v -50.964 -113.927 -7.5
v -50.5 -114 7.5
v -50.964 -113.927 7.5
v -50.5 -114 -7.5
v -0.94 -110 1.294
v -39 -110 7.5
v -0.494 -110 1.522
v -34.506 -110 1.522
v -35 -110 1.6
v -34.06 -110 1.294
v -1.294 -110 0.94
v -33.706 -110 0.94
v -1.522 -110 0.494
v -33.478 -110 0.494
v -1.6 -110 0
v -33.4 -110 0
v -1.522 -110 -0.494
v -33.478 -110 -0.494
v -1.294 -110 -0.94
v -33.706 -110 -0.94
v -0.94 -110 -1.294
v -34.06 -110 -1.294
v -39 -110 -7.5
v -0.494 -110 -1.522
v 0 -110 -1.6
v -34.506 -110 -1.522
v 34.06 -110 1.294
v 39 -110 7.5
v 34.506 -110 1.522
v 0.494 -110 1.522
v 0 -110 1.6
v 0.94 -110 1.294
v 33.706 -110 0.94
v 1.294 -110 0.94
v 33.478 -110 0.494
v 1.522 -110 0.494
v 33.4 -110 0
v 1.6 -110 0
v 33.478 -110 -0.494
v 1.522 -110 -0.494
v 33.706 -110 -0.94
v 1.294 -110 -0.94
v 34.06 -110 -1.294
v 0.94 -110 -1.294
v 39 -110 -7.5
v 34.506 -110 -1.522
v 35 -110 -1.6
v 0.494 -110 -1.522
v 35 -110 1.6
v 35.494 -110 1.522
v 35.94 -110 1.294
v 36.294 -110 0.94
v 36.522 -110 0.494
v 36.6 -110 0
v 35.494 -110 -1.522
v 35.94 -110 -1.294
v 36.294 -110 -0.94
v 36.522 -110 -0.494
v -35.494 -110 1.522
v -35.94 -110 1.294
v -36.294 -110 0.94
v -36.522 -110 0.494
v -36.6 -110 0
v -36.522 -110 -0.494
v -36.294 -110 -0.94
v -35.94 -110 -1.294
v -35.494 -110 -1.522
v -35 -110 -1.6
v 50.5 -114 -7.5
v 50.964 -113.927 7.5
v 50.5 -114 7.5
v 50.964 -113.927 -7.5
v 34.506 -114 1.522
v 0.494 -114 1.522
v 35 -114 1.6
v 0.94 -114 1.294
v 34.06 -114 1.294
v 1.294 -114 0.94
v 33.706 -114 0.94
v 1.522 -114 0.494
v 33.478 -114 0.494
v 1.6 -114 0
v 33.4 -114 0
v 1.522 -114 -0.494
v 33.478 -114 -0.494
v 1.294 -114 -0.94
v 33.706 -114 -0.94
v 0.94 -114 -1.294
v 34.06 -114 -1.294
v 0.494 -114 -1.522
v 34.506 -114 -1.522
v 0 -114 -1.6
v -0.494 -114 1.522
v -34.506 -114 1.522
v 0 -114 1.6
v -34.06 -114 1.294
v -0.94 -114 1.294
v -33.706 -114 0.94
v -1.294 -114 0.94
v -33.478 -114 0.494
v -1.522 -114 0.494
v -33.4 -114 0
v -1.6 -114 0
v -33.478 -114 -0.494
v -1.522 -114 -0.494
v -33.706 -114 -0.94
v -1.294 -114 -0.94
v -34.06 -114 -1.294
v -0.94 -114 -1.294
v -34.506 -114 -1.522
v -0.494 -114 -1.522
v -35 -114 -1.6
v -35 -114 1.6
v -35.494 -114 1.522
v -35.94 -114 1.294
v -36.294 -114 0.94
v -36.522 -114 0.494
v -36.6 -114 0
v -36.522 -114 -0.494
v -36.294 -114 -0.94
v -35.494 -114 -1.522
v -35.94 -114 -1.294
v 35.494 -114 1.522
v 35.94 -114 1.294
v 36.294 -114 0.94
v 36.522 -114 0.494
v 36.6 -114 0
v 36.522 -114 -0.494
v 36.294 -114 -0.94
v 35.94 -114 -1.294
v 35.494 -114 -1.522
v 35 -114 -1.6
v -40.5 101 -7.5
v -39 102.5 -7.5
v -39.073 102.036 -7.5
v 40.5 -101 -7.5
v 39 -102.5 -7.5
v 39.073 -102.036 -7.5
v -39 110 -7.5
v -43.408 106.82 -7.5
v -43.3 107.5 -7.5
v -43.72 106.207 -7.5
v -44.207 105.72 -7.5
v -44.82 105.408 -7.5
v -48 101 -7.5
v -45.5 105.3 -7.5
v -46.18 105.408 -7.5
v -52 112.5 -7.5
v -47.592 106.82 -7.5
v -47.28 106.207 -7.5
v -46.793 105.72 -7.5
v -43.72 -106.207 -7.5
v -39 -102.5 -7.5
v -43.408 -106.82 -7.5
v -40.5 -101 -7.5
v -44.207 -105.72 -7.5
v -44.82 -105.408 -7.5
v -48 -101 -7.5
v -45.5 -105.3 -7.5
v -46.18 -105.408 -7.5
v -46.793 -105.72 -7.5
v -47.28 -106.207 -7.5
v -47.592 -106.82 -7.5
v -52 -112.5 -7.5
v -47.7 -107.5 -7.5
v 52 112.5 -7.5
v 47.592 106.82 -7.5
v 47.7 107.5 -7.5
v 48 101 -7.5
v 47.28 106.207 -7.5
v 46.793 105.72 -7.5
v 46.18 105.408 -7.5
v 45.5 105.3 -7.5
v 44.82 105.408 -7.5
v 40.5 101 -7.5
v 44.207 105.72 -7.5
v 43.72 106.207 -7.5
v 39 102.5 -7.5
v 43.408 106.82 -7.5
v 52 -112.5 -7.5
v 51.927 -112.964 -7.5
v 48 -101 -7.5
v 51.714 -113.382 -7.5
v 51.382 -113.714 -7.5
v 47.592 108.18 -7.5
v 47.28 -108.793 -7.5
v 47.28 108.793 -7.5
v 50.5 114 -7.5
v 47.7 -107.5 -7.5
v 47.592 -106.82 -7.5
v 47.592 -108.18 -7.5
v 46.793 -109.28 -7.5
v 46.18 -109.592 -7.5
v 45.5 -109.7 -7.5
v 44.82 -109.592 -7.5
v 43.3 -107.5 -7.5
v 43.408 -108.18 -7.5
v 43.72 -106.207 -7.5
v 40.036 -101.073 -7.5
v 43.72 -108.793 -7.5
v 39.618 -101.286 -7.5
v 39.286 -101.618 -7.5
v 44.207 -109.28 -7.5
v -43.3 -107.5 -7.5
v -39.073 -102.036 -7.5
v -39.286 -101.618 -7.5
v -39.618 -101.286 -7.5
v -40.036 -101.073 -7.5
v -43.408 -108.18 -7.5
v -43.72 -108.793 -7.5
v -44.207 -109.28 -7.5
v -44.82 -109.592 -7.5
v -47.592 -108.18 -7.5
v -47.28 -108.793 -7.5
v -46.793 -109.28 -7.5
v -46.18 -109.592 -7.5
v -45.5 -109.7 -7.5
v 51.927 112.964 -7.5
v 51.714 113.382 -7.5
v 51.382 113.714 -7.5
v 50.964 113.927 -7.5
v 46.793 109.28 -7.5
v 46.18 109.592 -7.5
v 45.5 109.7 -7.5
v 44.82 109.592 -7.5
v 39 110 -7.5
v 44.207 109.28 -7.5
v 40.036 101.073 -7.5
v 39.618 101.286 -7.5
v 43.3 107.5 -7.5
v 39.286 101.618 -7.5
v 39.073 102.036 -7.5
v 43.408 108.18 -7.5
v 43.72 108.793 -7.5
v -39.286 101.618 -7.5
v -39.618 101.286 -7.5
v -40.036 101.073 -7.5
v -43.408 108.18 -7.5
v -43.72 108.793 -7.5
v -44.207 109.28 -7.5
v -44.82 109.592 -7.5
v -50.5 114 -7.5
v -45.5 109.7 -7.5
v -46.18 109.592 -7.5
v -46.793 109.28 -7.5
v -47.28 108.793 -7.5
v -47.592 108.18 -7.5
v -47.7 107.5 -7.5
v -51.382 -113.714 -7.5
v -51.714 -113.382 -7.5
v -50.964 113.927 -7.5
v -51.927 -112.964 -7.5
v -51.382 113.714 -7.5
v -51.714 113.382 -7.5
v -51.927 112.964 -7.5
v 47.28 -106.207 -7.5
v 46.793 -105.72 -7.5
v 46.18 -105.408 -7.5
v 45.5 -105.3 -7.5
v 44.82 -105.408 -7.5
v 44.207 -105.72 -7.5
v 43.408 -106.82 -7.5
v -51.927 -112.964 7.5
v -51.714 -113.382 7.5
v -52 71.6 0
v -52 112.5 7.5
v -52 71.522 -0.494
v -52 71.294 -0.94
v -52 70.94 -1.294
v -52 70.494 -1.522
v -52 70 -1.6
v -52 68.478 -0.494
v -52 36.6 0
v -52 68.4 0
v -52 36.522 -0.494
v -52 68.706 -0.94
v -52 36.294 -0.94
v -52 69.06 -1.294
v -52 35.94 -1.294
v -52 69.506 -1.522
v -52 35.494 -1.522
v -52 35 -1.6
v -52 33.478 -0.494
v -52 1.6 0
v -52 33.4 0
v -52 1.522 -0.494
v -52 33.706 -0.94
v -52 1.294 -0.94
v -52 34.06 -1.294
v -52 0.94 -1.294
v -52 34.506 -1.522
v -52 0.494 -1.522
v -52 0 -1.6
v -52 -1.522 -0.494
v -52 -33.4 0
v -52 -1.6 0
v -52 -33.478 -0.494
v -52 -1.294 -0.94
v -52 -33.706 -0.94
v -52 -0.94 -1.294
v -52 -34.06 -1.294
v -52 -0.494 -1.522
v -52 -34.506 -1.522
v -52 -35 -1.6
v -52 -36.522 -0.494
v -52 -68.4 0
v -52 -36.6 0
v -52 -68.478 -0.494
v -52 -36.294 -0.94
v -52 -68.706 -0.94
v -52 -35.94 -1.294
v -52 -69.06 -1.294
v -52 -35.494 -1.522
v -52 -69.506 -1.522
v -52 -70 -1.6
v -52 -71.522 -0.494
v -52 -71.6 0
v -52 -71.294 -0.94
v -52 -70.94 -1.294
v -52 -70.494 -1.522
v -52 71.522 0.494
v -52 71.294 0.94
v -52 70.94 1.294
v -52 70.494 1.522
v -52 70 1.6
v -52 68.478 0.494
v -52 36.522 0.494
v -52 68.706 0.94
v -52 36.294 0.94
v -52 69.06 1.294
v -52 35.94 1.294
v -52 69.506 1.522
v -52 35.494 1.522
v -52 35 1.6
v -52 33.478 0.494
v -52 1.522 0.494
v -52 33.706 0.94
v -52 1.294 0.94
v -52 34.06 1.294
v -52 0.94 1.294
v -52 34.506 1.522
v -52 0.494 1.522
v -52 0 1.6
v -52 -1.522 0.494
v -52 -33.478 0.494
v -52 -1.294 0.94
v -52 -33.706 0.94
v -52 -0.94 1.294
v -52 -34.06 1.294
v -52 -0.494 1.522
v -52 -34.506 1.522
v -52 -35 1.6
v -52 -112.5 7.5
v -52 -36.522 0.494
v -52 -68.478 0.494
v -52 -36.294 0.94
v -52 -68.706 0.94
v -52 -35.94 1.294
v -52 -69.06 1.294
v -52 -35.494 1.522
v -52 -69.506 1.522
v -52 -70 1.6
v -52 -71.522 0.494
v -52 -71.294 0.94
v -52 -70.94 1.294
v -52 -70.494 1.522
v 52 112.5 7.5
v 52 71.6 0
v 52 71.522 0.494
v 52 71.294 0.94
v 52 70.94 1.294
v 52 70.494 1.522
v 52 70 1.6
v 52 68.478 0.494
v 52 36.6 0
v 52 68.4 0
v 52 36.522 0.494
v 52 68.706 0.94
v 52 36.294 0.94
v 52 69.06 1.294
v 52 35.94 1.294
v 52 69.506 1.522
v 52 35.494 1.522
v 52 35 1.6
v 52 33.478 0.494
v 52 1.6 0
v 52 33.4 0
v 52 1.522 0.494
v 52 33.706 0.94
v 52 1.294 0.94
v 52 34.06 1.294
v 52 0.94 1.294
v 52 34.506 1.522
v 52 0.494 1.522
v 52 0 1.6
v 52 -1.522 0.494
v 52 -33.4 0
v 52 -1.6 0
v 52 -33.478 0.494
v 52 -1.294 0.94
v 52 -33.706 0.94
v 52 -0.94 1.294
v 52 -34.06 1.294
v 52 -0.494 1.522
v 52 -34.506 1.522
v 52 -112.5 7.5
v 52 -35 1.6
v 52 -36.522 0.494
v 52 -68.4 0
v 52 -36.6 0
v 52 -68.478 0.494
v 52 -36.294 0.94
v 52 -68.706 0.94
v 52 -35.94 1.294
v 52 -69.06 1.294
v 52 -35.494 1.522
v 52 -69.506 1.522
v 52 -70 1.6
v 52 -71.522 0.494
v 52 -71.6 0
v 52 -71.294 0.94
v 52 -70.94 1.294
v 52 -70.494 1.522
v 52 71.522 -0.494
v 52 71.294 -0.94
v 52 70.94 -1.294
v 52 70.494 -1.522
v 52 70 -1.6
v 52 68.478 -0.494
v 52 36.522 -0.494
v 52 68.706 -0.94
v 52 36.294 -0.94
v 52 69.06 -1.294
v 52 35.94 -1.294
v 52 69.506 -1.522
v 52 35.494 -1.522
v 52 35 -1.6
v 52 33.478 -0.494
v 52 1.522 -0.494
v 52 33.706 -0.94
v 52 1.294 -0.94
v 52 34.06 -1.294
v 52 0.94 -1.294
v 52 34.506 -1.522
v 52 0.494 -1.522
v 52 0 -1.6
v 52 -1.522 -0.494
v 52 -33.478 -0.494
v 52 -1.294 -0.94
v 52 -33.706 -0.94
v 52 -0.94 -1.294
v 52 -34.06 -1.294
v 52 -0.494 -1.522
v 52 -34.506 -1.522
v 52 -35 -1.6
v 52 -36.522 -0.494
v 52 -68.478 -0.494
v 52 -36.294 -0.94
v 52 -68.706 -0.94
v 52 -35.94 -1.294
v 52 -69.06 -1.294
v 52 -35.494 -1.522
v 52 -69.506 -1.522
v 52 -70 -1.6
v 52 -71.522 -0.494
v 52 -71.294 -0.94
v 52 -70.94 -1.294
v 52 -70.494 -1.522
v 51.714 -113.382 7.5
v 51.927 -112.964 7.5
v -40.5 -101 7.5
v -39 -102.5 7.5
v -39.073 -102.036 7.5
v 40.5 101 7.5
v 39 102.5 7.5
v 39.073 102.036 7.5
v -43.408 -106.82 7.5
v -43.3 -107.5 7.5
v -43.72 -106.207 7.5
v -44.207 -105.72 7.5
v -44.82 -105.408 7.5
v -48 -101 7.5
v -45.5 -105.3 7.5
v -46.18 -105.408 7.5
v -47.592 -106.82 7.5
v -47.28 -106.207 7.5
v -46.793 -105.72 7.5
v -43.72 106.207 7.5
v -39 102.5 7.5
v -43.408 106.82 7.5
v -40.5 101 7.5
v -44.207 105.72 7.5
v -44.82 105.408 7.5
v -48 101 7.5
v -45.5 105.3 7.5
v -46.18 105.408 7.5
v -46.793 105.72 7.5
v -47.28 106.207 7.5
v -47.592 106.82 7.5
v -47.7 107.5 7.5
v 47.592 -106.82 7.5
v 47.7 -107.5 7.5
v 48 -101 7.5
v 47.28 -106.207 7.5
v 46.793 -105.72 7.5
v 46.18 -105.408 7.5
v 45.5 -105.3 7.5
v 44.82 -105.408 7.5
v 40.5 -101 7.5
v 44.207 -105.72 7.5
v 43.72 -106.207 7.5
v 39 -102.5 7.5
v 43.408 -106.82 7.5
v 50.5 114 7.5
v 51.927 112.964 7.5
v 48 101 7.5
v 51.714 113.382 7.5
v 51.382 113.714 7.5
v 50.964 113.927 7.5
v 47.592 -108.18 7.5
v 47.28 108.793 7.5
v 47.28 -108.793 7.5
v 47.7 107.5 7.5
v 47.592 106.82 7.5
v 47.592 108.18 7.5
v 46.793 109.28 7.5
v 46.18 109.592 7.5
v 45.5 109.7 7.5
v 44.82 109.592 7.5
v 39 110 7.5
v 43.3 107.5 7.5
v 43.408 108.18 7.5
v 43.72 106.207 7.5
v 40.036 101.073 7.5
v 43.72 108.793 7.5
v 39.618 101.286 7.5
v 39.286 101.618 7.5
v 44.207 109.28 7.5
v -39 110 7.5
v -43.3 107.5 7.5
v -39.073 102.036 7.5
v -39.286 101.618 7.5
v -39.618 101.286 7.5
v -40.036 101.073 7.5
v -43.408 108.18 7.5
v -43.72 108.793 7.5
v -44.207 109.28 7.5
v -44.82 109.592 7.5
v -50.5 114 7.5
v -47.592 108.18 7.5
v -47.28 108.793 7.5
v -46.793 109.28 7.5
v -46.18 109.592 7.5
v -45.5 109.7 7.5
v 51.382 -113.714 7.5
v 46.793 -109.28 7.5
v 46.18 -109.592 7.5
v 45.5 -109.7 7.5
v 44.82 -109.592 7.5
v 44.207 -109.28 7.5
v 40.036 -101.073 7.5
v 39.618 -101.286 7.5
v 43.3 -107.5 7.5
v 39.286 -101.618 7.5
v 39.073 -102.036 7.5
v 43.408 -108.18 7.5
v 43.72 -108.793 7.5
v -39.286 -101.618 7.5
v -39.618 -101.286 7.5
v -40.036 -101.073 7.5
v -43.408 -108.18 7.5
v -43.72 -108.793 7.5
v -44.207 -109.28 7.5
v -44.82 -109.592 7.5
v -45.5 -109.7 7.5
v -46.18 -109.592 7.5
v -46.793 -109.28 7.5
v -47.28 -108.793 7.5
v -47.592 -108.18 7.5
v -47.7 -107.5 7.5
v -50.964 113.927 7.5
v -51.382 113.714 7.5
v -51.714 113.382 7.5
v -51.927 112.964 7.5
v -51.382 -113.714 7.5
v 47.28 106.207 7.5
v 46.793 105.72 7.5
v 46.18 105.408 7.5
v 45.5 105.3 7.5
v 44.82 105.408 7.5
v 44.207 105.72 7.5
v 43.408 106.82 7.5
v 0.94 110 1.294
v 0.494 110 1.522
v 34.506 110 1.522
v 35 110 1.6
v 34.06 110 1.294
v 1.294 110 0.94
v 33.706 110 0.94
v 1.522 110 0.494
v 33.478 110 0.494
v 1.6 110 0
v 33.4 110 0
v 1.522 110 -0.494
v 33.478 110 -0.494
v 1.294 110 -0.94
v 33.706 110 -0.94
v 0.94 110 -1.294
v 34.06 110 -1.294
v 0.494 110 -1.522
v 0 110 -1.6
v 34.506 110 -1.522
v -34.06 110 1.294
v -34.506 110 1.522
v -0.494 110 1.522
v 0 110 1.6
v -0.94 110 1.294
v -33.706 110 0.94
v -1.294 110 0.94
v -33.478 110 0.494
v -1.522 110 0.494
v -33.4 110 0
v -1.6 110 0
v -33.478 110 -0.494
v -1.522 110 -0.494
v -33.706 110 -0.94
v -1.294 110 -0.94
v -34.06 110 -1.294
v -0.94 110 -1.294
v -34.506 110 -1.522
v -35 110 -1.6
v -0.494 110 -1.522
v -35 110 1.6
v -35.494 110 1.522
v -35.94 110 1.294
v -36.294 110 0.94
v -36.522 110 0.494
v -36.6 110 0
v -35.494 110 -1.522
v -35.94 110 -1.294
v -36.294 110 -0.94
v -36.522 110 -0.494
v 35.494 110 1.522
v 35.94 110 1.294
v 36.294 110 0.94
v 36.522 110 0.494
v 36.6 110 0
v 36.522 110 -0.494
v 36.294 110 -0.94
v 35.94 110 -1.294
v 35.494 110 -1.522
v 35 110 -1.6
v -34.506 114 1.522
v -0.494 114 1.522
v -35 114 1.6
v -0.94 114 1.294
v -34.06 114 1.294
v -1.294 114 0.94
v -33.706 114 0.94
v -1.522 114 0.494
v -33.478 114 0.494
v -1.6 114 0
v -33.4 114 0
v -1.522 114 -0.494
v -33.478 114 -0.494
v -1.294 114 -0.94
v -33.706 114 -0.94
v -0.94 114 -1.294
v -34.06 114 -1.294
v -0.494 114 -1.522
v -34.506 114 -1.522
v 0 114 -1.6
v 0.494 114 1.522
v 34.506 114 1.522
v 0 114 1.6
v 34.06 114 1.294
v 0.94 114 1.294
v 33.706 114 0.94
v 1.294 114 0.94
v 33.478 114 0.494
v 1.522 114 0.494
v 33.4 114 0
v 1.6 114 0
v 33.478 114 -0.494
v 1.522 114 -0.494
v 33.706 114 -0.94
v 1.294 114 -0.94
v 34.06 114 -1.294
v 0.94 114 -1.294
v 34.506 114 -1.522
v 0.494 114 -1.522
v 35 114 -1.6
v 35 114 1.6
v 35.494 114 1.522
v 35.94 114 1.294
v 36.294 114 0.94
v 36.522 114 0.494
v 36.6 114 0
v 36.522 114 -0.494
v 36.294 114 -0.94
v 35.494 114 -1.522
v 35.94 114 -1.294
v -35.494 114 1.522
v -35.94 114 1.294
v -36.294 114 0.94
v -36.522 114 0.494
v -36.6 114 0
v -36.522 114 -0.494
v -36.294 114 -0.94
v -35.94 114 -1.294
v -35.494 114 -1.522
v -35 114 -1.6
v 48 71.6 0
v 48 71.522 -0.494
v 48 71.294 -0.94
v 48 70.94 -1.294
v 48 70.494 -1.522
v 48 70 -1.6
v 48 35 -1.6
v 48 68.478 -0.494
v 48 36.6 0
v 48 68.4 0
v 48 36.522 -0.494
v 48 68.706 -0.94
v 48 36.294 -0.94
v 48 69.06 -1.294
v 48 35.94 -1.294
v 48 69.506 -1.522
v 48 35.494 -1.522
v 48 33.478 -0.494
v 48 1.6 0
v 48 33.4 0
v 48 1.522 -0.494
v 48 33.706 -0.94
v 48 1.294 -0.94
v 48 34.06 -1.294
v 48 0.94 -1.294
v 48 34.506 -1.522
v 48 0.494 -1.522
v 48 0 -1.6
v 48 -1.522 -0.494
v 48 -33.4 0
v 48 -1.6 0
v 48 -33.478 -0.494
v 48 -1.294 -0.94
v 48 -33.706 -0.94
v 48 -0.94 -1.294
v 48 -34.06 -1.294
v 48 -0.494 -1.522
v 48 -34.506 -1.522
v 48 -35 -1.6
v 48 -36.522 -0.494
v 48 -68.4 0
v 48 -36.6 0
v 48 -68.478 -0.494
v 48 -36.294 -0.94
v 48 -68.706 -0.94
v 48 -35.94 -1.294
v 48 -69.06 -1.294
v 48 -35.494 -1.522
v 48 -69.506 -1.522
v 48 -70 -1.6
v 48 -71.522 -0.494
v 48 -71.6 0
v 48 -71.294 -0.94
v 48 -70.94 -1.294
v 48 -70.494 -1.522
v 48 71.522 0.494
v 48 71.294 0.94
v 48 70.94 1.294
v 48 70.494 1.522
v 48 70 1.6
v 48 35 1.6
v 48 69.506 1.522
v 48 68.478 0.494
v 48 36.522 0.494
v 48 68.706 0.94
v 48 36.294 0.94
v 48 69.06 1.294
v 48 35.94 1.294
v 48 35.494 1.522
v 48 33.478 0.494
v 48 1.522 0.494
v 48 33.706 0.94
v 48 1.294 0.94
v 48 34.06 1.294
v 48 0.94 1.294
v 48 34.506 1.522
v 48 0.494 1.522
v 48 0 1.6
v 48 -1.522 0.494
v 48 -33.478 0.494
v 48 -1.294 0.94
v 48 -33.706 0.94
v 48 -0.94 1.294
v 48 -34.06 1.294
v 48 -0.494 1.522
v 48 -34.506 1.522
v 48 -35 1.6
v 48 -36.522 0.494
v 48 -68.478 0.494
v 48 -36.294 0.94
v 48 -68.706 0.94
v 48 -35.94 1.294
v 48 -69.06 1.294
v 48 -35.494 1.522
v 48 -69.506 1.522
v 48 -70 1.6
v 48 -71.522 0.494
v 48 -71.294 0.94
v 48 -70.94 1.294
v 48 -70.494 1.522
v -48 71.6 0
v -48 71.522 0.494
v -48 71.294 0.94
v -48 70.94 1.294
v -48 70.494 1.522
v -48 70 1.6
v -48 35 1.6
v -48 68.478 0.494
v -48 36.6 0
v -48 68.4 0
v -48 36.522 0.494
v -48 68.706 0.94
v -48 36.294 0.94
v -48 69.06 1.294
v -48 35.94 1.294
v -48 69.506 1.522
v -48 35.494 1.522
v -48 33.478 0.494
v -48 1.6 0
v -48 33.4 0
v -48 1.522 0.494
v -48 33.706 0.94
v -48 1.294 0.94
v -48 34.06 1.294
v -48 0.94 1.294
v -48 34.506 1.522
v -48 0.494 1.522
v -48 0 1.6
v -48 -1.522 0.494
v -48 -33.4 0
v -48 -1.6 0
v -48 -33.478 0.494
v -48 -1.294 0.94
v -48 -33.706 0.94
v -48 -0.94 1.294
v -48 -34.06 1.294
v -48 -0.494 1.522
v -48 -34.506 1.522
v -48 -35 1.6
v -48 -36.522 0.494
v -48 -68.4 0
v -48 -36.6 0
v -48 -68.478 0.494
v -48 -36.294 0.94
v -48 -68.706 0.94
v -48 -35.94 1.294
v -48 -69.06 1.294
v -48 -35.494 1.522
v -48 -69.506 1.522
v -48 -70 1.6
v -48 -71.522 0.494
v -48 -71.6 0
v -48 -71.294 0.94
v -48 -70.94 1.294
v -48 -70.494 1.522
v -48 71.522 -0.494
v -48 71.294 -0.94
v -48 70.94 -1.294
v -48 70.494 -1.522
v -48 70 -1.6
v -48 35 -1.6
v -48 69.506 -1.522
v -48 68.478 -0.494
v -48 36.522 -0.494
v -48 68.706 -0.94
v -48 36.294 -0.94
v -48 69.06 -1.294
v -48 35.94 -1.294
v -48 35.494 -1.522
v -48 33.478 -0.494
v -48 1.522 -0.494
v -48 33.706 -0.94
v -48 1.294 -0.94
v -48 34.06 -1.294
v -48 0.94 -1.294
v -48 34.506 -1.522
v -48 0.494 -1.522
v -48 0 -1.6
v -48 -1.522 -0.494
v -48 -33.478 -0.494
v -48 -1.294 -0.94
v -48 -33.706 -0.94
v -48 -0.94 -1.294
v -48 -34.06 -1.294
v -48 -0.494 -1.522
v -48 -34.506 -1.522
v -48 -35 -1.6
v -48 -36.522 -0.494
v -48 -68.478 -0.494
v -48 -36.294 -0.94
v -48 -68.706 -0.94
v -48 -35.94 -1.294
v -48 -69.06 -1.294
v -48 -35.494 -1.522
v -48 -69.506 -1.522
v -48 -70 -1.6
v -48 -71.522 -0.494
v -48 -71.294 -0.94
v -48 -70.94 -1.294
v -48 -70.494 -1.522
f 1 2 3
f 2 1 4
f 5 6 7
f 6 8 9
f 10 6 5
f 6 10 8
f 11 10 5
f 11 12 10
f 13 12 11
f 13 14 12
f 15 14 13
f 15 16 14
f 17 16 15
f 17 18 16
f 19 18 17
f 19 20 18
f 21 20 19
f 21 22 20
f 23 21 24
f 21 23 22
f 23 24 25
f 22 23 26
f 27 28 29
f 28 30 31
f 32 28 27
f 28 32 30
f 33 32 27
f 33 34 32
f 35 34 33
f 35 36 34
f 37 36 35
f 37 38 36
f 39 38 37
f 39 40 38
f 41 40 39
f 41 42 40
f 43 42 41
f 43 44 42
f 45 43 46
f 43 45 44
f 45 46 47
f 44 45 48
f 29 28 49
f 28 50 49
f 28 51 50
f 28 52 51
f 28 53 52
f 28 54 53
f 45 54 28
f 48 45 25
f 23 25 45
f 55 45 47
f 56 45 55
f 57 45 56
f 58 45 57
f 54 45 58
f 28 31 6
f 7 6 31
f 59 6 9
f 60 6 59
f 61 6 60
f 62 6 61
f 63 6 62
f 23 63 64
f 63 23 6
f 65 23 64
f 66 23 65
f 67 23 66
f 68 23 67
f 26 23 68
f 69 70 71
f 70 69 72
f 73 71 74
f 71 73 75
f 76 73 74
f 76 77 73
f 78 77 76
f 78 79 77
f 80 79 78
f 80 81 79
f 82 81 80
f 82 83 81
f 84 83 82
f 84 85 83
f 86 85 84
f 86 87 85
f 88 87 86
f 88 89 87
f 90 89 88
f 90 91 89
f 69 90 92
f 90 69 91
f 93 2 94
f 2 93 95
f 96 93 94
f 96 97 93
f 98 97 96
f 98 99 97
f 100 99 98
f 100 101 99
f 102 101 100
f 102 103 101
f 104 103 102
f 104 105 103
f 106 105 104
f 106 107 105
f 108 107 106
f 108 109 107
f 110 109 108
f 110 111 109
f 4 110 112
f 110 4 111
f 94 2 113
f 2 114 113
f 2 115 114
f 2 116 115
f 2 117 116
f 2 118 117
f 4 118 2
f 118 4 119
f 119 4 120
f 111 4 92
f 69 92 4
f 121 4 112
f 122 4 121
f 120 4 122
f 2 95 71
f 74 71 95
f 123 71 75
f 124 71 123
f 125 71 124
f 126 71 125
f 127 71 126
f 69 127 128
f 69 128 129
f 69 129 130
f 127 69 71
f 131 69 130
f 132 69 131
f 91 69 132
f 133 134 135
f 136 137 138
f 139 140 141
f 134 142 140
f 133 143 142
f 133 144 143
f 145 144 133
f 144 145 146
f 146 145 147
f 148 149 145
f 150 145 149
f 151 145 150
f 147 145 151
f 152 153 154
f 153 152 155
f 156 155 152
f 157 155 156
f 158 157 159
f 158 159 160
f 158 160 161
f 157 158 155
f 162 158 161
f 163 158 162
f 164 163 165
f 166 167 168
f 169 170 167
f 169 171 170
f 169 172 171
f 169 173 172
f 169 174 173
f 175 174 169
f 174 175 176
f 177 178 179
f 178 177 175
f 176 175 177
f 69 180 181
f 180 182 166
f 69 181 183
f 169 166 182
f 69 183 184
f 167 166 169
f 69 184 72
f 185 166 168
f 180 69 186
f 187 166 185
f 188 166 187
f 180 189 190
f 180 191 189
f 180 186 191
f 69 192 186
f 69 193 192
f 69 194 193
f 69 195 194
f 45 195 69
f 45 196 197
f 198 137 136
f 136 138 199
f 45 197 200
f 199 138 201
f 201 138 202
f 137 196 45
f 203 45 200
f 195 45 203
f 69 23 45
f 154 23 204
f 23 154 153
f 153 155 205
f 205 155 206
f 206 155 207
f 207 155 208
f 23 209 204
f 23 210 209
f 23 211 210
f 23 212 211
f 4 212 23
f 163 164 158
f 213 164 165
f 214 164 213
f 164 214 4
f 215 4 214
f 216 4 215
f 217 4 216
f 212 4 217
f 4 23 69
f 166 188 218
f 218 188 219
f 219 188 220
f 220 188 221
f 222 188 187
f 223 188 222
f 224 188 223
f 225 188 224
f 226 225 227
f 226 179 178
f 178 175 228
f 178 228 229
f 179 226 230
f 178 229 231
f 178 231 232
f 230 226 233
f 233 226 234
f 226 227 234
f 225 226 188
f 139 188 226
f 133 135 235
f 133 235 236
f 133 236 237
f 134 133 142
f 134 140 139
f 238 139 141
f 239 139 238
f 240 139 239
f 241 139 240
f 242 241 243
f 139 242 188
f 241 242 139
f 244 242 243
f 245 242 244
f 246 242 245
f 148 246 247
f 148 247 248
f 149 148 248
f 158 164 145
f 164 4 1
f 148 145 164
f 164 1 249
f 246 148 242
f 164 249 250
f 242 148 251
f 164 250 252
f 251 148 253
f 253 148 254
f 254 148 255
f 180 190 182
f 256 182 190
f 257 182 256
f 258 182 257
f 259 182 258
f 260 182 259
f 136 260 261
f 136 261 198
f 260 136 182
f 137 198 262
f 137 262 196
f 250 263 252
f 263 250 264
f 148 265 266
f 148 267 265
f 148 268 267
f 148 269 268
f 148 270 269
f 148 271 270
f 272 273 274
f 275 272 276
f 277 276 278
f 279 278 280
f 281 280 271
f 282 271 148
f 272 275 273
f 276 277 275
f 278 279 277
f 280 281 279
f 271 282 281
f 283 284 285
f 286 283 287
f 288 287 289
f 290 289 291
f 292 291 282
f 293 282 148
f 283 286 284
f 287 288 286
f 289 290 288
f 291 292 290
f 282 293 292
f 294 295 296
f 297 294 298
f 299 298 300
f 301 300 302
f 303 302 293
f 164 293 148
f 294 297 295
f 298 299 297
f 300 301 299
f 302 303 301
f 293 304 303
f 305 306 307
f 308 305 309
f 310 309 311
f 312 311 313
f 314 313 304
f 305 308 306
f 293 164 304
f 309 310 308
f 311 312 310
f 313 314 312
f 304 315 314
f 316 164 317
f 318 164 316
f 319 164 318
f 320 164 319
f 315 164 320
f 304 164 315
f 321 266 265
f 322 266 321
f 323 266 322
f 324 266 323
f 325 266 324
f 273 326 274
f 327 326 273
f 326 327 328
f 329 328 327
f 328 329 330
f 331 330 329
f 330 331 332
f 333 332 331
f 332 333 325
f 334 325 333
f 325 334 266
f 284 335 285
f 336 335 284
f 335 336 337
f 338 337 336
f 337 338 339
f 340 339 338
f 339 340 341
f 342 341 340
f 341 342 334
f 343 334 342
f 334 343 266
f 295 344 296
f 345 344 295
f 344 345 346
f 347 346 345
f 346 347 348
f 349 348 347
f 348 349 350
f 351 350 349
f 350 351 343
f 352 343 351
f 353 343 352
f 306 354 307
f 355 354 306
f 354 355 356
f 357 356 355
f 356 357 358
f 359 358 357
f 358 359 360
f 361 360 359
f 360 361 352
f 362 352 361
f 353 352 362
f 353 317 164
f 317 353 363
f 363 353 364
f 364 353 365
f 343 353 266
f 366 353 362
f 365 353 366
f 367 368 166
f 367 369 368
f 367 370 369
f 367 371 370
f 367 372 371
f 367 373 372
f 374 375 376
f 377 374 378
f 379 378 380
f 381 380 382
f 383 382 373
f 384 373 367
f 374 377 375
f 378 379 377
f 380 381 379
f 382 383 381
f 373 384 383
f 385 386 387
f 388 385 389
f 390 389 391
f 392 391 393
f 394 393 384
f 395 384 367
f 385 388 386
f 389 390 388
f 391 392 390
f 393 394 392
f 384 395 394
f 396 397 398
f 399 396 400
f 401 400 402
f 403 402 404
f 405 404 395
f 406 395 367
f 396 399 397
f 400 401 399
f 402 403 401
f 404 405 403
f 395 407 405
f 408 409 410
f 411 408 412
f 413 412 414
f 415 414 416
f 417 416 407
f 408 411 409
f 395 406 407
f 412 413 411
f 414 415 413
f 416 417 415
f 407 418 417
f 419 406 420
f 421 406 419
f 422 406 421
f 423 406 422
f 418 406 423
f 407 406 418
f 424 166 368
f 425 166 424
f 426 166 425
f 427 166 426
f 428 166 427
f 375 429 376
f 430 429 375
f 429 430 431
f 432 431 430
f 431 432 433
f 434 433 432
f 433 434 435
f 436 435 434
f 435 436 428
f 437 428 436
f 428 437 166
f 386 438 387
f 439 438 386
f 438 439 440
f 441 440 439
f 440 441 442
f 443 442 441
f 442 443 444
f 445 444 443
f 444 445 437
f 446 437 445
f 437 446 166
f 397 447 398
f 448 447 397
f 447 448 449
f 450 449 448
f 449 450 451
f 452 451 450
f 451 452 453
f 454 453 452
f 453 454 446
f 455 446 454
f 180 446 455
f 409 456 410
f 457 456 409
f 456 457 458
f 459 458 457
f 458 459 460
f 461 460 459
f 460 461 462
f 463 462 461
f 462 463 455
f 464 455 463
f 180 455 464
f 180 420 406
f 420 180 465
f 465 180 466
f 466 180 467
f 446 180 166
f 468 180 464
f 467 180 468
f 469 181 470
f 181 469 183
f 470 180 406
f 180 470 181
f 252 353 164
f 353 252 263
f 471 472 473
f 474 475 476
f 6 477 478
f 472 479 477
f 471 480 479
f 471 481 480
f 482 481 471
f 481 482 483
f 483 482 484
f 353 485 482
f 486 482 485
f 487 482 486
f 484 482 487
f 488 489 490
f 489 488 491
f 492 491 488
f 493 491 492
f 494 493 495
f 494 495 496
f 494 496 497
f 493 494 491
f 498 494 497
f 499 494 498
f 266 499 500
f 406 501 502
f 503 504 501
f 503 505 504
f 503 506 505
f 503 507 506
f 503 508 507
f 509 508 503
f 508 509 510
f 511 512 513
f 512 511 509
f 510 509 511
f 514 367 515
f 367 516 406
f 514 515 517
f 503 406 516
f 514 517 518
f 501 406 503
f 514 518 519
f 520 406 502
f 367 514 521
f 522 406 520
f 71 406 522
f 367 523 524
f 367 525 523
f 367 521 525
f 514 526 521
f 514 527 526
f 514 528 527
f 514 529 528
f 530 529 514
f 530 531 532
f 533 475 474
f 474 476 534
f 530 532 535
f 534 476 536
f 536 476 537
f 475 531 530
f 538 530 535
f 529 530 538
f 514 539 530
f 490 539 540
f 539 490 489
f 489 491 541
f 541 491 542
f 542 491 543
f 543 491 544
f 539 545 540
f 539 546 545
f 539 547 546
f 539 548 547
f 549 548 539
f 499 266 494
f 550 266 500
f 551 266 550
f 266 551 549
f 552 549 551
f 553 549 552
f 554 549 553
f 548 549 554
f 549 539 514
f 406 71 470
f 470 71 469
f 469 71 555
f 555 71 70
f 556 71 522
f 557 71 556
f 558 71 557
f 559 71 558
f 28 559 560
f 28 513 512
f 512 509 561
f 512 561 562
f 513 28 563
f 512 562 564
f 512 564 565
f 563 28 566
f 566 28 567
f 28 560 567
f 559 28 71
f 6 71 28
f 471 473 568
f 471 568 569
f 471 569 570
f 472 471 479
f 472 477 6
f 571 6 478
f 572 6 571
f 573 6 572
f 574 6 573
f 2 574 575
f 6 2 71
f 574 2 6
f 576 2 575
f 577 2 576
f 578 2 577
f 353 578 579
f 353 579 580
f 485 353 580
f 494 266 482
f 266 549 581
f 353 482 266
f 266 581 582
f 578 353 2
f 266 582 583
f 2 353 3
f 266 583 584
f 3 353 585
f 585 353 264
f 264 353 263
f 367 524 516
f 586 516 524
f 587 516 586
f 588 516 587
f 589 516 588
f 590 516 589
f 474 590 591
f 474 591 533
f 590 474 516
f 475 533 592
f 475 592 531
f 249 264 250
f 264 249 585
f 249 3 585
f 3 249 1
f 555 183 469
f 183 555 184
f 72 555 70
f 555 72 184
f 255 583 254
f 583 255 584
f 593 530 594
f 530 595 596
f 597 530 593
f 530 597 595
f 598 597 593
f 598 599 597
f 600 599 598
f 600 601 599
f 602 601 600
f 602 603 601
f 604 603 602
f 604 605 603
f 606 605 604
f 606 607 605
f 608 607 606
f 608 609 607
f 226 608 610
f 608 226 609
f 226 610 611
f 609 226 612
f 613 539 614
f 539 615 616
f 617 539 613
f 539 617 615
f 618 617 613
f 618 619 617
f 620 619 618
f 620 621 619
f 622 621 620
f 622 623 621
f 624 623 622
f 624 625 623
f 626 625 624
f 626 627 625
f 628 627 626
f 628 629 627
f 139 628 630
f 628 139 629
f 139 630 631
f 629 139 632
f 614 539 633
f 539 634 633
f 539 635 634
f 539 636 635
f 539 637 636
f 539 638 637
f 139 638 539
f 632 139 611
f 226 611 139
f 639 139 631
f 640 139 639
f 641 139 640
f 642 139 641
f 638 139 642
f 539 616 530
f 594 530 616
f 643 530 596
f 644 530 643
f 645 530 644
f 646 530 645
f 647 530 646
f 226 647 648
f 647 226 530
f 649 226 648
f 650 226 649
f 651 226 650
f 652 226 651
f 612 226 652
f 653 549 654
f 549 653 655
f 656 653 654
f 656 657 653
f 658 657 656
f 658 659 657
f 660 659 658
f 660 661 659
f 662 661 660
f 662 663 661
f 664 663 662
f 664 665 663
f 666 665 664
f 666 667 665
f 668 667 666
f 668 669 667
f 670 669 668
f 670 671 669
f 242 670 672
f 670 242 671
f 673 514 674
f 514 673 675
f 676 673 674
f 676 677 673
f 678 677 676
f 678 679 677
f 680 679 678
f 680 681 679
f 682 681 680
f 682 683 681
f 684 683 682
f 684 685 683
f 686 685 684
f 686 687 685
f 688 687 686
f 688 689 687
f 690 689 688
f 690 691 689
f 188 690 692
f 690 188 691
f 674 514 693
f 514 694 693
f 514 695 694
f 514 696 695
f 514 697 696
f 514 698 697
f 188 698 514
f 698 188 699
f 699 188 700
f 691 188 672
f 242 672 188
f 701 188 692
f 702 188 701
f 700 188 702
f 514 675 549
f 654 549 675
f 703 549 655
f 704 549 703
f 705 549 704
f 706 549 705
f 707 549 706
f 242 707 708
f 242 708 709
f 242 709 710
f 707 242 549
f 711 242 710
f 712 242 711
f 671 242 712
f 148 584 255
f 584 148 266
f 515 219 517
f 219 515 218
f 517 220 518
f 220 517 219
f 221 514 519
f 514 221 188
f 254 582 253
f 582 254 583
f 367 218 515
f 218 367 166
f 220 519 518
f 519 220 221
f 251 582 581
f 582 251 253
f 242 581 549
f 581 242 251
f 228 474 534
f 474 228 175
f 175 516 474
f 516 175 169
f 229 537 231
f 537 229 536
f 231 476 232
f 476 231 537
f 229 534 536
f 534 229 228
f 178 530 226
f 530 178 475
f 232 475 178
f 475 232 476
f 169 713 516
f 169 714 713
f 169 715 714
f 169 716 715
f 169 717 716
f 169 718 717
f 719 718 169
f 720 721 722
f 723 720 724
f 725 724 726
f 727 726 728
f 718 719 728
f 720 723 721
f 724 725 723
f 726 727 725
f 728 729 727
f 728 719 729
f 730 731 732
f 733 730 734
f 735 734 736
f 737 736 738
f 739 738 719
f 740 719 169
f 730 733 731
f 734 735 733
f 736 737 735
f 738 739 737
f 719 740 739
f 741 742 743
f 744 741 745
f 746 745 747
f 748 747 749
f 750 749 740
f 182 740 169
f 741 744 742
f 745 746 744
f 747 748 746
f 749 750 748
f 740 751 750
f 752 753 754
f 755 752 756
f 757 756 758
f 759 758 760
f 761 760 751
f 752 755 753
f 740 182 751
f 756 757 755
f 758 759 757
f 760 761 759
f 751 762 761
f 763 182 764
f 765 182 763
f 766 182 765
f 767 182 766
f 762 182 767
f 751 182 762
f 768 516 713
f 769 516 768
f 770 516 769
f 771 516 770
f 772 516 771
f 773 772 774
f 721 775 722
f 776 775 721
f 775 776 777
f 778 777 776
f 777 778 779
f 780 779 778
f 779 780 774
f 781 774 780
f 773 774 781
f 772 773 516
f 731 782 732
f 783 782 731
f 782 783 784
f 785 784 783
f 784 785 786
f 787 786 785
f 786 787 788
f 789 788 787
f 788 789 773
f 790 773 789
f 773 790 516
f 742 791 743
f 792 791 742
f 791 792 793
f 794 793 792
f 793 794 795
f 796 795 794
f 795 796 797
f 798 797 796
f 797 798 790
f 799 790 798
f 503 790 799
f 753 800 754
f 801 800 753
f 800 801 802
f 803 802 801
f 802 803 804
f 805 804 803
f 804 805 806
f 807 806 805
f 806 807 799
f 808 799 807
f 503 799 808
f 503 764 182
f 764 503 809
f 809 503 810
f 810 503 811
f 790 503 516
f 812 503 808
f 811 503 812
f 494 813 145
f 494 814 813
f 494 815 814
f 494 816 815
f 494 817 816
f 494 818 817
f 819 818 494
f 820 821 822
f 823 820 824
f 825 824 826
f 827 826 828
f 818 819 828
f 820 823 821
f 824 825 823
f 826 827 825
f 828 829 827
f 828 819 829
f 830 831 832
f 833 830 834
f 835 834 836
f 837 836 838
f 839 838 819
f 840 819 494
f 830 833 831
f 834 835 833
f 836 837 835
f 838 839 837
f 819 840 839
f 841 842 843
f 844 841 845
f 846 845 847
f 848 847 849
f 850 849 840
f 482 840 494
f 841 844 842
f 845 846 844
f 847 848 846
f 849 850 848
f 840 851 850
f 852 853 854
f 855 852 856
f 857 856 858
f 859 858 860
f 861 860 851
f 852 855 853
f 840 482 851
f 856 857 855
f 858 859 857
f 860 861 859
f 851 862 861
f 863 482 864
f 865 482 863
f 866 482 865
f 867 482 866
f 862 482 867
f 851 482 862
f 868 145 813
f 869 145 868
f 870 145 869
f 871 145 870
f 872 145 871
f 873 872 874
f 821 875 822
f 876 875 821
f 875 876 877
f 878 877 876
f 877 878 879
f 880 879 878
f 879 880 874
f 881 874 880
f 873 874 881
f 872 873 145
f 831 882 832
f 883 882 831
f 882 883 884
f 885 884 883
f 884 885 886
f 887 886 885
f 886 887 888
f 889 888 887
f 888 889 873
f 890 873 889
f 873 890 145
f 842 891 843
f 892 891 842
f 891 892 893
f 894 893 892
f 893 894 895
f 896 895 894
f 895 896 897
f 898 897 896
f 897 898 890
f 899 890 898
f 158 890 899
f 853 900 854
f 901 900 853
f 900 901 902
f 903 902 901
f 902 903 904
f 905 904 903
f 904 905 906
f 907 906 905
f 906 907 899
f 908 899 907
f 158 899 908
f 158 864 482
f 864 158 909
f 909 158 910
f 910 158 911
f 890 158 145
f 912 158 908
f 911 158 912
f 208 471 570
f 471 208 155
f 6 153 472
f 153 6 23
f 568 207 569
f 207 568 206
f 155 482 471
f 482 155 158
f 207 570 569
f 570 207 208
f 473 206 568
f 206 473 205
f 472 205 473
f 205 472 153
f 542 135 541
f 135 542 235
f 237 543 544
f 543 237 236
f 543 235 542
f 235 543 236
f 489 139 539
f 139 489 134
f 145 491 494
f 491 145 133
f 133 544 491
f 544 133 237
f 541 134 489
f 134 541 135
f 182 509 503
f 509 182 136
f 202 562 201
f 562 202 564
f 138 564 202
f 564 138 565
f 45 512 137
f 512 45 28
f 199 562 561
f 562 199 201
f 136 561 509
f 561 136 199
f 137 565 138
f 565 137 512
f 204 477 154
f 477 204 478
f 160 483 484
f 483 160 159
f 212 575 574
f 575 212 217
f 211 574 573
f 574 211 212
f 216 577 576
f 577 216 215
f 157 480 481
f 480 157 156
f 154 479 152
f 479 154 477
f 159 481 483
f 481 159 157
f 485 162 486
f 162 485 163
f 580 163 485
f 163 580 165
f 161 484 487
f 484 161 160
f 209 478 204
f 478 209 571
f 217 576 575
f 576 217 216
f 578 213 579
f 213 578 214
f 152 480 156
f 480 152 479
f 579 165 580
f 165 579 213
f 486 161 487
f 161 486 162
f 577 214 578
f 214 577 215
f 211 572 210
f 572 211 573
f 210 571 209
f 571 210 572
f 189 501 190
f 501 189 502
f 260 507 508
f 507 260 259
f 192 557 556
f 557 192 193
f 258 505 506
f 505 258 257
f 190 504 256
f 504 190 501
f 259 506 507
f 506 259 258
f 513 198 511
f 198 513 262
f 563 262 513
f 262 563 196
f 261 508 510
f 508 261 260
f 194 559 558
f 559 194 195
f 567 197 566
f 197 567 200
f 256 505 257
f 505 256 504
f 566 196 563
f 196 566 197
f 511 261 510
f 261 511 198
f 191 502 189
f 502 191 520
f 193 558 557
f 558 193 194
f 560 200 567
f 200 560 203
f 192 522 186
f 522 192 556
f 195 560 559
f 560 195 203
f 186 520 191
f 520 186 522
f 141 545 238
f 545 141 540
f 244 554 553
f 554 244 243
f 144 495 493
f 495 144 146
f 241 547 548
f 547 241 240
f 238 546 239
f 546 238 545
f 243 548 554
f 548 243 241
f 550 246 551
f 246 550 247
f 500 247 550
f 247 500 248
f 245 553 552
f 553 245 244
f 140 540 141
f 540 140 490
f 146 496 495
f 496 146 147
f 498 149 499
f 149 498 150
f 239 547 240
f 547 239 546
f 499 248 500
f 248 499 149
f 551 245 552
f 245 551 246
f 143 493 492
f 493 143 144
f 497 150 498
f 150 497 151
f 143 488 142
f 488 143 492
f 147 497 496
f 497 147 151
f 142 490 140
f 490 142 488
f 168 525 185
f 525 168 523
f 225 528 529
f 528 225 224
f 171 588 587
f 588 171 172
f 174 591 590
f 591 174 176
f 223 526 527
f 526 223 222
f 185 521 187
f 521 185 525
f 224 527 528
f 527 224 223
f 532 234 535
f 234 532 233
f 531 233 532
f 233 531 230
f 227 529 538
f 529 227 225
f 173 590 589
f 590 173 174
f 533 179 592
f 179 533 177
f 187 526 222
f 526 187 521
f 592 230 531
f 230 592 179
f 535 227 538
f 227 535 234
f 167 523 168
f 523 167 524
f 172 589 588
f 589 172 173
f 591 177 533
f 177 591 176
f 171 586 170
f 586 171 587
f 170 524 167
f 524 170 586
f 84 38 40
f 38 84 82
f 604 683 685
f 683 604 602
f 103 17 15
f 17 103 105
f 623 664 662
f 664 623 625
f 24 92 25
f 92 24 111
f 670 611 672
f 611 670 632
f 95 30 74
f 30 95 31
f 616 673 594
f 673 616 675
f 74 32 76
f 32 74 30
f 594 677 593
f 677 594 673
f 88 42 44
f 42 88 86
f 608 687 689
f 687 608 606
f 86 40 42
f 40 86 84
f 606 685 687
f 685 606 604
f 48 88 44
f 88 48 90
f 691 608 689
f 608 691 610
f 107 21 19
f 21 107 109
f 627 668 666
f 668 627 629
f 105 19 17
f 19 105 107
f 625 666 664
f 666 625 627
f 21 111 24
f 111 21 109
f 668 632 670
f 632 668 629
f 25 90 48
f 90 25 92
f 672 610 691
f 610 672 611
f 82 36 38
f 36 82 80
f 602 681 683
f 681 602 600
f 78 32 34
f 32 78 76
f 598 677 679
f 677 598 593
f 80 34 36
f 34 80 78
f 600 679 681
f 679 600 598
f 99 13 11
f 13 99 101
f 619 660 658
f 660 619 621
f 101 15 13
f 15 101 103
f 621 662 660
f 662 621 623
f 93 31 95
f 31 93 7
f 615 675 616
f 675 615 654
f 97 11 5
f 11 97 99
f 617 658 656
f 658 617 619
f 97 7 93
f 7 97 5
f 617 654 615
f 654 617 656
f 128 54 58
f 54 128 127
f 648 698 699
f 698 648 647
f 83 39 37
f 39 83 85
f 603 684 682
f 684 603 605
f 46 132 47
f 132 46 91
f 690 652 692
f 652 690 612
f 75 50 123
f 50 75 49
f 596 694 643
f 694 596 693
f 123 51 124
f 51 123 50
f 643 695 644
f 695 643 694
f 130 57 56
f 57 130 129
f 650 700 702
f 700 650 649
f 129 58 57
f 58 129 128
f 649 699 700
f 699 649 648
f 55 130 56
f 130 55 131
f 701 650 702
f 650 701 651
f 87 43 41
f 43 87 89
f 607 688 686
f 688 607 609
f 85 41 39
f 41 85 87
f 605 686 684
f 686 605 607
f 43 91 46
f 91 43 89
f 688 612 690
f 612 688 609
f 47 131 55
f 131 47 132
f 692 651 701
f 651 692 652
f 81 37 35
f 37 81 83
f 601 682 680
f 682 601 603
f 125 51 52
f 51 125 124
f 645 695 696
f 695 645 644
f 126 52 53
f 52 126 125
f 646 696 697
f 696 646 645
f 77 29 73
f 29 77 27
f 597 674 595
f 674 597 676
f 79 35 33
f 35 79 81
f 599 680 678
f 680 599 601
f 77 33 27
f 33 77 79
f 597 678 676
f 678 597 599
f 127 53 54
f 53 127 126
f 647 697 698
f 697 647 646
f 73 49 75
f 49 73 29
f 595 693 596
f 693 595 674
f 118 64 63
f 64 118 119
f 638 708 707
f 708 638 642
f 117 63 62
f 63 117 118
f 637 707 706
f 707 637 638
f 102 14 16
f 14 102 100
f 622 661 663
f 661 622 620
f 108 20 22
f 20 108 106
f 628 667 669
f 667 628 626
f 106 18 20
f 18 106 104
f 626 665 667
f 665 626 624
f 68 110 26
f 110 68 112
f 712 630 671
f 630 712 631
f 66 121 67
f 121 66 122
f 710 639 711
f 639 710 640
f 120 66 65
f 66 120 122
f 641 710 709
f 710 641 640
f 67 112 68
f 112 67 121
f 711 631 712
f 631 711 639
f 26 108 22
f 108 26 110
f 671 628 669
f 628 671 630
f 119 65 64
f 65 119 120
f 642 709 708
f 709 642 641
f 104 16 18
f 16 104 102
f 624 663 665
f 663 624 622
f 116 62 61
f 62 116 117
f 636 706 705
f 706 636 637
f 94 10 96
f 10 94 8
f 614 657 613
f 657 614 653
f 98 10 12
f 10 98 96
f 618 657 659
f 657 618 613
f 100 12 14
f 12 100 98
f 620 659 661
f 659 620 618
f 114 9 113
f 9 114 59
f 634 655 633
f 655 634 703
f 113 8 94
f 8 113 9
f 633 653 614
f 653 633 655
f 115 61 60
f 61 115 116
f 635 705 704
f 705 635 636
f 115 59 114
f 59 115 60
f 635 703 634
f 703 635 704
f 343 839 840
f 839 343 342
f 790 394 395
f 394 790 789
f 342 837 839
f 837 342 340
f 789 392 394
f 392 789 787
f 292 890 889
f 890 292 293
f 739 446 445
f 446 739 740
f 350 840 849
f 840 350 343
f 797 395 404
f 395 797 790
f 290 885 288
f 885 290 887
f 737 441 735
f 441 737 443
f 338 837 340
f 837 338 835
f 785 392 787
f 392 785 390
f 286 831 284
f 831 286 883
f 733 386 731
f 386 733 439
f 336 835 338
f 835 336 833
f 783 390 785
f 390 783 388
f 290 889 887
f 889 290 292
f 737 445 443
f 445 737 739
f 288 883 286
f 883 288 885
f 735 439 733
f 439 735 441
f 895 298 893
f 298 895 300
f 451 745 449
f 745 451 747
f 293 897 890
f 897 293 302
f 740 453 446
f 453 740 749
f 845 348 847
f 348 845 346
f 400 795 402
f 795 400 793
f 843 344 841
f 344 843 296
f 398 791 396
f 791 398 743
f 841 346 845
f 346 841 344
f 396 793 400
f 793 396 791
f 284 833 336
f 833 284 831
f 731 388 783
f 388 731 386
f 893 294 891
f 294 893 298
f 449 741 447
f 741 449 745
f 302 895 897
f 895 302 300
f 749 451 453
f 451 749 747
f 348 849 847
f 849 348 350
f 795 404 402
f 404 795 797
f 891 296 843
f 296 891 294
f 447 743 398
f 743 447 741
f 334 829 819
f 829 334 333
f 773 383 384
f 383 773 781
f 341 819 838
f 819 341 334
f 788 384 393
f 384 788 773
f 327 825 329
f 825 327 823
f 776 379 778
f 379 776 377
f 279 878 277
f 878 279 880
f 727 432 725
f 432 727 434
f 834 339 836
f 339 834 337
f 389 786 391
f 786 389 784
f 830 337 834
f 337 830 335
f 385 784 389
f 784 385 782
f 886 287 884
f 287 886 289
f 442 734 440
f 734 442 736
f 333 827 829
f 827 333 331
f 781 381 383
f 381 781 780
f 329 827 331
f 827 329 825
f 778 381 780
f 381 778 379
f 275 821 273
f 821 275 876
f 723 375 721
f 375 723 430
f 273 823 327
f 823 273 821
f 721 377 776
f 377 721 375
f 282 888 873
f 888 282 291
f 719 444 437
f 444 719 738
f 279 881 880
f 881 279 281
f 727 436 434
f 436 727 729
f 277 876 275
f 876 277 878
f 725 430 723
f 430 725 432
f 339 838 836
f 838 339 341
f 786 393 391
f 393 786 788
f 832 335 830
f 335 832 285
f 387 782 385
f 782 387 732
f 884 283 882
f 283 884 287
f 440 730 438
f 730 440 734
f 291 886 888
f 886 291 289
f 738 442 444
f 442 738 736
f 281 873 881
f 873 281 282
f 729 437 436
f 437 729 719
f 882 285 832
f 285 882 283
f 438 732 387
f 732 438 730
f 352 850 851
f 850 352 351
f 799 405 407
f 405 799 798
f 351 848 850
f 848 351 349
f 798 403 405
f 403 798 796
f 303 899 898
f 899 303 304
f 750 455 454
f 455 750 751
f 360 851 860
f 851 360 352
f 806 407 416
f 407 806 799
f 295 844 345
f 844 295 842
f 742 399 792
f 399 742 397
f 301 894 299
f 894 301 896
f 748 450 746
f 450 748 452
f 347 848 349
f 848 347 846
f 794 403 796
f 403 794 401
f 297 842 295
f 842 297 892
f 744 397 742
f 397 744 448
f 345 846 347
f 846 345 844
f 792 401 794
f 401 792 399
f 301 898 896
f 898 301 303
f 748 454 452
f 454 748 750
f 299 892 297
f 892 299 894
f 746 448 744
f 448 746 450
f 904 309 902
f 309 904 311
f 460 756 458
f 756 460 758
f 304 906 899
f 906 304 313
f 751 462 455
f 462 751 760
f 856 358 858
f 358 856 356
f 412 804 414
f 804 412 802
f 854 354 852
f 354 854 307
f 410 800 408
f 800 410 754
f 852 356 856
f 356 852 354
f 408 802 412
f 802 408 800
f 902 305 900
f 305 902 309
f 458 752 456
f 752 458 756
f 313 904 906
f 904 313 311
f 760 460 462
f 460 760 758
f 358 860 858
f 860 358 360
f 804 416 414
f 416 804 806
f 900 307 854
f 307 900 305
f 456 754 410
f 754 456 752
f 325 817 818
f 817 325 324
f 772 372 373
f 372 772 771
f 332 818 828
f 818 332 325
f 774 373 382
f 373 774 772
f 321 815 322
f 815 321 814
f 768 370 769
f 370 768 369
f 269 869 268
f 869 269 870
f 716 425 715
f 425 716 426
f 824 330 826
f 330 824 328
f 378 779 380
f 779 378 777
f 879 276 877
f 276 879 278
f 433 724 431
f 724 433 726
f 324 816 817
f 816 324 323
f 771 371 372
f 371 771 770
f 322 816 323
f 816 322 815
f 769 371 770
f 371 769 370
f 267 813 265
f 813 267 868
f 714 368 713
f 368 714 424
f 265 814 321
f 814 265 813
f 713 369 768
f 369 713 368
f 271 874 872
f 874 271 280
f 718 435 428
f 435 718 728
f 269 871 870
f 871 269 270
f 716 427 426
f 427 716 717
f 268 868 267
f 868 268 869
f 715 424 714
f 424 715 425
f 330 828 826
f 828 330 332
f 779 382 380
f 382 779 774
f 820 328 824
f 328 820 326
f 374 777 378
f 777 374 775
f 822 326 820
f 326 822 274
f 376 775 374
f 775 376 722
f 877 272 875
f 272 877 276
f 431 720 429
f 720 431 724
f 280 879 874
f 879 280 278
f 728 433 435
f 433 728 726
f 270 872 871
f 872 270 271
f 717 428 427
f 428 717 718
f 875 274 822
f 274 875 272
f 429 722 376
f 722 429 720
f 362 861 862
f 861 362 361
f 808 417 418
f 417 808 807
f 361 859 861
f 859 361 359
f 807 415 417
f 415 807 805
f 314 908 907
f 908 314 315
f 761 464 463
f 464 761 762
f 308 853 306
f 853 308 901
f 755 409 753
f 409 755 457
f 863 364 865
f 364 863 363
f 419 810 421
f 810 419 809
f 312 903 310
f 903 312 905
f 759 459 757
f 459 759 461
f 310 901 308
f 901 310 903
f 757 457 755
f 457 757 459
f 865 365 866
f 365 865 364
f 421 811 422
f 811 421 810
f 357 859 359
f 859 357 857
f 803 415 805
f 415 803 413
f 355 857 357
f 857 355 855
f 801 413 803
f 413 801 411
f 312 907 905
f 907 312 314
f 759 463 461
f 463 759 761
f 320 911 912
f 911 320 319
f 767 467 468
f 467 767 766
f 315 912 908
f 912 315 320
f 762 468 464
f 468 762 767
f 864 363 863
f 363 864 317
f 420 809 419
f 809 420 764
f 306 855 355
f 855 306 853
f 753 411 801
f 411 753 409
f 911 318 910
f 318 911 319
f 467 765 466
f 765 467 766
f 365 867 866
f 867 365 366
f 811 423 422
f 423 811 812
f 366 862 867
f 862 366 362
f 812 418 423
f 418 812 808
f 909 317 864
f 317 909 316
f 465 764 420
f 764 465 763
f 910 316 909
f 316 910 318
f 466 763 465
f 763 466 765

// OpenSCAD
$fn = 20;
minkradius = 1.5;

x_dim = 101;
z_dim = 15;
y_dim=10;

    
side_dim = 2.5 - minkradius;

l = 225 ;
hole_y_offset  = 5;
hole_x_offset  = 5;
front_x_offset = 10;
h_dist = 35;
difference(){
    translate([-x_dim*0.5,-l*0.5,-z_dim*0.5]){ //
        difference(){
        minkowski(){
            difference(){
                union(){
                    cube([x_dim, y_dim, z_dim]);
                    cube([side_dim, l, z_dim]);
                    
                    translate([0,l-y_dim,0])cube([x_dim, y_dim, z_dim]);
                    translate([x_dim-side_dim,0,0])cube([side_dim, l, z_dim]);
                   }
                    
                translate([front_x_offset,side_dim,0])cube([x_dim-front_x_offset*2, y_dim, z_dim]);
                
                 translate([front_x_offset,l-(y_dim),0])cube([x_dim-front_x_offset*2, y_dim-side_dim, z_dim]);
                
               }
               cylinder(h=0.0001,r=minkradius);
               
           }
               
              translate([hole_x_offset,hole_y_offset,-1])cylinder(r=2.2,h=100);
              translate([x_dim-hole_x_offset,hole_y_offset,-1])cylinder(r=2.2,h=100);
              translate([hole_x_offset,l-hole_y_offset,-1])cylinder(r=2.2,h=100);
              translate([x_dim-hole_x_offset,l-hole_y_offset,-1])cylinder(r=2.2,h=100);
            
            
            
        }
    }
    
    translate([0,-l,0])rotate([-90,0,0])cylinder(h=900,r=1.6);
    translate([h_dist,-l,0])rotate([-90,0,0])cylinder(h=900,r=1.6);
    translate([-h_dist,-l,0])rotate([-90,0,0])cylinder(h=900,r=1.6);
    
    //translate([0,-l,0])rotate([-90,0,90])cylinder(h=900,r=1.6);
    //translate([h_dist,-l,0])rotate([-90,0,90])cylinder(h=900,r=1.6);
    translate([x_dim,0,0])rotate([0,-90,0])cylinder(h=900,r=1.6);
    translate([x_dim,h_dist,0])rotate([0,-90,0])cylinder(h=900,r=1.6);
    translate([x_dim,-h_dist,0])rotate([0,-90,0])cylinder(h=900,r=1.6);
    translate([x_dim,2*h_dist,0])rotate([0,-90,0])cylinder(h=900,r=1.6);
    translate([x_dim,-2*h_dist,0])rotate([0,-90,0])cylinder(h=900,r=1.6);
    
}
//cube([x_dim,l,1]);
//Flop in some M3 holes
